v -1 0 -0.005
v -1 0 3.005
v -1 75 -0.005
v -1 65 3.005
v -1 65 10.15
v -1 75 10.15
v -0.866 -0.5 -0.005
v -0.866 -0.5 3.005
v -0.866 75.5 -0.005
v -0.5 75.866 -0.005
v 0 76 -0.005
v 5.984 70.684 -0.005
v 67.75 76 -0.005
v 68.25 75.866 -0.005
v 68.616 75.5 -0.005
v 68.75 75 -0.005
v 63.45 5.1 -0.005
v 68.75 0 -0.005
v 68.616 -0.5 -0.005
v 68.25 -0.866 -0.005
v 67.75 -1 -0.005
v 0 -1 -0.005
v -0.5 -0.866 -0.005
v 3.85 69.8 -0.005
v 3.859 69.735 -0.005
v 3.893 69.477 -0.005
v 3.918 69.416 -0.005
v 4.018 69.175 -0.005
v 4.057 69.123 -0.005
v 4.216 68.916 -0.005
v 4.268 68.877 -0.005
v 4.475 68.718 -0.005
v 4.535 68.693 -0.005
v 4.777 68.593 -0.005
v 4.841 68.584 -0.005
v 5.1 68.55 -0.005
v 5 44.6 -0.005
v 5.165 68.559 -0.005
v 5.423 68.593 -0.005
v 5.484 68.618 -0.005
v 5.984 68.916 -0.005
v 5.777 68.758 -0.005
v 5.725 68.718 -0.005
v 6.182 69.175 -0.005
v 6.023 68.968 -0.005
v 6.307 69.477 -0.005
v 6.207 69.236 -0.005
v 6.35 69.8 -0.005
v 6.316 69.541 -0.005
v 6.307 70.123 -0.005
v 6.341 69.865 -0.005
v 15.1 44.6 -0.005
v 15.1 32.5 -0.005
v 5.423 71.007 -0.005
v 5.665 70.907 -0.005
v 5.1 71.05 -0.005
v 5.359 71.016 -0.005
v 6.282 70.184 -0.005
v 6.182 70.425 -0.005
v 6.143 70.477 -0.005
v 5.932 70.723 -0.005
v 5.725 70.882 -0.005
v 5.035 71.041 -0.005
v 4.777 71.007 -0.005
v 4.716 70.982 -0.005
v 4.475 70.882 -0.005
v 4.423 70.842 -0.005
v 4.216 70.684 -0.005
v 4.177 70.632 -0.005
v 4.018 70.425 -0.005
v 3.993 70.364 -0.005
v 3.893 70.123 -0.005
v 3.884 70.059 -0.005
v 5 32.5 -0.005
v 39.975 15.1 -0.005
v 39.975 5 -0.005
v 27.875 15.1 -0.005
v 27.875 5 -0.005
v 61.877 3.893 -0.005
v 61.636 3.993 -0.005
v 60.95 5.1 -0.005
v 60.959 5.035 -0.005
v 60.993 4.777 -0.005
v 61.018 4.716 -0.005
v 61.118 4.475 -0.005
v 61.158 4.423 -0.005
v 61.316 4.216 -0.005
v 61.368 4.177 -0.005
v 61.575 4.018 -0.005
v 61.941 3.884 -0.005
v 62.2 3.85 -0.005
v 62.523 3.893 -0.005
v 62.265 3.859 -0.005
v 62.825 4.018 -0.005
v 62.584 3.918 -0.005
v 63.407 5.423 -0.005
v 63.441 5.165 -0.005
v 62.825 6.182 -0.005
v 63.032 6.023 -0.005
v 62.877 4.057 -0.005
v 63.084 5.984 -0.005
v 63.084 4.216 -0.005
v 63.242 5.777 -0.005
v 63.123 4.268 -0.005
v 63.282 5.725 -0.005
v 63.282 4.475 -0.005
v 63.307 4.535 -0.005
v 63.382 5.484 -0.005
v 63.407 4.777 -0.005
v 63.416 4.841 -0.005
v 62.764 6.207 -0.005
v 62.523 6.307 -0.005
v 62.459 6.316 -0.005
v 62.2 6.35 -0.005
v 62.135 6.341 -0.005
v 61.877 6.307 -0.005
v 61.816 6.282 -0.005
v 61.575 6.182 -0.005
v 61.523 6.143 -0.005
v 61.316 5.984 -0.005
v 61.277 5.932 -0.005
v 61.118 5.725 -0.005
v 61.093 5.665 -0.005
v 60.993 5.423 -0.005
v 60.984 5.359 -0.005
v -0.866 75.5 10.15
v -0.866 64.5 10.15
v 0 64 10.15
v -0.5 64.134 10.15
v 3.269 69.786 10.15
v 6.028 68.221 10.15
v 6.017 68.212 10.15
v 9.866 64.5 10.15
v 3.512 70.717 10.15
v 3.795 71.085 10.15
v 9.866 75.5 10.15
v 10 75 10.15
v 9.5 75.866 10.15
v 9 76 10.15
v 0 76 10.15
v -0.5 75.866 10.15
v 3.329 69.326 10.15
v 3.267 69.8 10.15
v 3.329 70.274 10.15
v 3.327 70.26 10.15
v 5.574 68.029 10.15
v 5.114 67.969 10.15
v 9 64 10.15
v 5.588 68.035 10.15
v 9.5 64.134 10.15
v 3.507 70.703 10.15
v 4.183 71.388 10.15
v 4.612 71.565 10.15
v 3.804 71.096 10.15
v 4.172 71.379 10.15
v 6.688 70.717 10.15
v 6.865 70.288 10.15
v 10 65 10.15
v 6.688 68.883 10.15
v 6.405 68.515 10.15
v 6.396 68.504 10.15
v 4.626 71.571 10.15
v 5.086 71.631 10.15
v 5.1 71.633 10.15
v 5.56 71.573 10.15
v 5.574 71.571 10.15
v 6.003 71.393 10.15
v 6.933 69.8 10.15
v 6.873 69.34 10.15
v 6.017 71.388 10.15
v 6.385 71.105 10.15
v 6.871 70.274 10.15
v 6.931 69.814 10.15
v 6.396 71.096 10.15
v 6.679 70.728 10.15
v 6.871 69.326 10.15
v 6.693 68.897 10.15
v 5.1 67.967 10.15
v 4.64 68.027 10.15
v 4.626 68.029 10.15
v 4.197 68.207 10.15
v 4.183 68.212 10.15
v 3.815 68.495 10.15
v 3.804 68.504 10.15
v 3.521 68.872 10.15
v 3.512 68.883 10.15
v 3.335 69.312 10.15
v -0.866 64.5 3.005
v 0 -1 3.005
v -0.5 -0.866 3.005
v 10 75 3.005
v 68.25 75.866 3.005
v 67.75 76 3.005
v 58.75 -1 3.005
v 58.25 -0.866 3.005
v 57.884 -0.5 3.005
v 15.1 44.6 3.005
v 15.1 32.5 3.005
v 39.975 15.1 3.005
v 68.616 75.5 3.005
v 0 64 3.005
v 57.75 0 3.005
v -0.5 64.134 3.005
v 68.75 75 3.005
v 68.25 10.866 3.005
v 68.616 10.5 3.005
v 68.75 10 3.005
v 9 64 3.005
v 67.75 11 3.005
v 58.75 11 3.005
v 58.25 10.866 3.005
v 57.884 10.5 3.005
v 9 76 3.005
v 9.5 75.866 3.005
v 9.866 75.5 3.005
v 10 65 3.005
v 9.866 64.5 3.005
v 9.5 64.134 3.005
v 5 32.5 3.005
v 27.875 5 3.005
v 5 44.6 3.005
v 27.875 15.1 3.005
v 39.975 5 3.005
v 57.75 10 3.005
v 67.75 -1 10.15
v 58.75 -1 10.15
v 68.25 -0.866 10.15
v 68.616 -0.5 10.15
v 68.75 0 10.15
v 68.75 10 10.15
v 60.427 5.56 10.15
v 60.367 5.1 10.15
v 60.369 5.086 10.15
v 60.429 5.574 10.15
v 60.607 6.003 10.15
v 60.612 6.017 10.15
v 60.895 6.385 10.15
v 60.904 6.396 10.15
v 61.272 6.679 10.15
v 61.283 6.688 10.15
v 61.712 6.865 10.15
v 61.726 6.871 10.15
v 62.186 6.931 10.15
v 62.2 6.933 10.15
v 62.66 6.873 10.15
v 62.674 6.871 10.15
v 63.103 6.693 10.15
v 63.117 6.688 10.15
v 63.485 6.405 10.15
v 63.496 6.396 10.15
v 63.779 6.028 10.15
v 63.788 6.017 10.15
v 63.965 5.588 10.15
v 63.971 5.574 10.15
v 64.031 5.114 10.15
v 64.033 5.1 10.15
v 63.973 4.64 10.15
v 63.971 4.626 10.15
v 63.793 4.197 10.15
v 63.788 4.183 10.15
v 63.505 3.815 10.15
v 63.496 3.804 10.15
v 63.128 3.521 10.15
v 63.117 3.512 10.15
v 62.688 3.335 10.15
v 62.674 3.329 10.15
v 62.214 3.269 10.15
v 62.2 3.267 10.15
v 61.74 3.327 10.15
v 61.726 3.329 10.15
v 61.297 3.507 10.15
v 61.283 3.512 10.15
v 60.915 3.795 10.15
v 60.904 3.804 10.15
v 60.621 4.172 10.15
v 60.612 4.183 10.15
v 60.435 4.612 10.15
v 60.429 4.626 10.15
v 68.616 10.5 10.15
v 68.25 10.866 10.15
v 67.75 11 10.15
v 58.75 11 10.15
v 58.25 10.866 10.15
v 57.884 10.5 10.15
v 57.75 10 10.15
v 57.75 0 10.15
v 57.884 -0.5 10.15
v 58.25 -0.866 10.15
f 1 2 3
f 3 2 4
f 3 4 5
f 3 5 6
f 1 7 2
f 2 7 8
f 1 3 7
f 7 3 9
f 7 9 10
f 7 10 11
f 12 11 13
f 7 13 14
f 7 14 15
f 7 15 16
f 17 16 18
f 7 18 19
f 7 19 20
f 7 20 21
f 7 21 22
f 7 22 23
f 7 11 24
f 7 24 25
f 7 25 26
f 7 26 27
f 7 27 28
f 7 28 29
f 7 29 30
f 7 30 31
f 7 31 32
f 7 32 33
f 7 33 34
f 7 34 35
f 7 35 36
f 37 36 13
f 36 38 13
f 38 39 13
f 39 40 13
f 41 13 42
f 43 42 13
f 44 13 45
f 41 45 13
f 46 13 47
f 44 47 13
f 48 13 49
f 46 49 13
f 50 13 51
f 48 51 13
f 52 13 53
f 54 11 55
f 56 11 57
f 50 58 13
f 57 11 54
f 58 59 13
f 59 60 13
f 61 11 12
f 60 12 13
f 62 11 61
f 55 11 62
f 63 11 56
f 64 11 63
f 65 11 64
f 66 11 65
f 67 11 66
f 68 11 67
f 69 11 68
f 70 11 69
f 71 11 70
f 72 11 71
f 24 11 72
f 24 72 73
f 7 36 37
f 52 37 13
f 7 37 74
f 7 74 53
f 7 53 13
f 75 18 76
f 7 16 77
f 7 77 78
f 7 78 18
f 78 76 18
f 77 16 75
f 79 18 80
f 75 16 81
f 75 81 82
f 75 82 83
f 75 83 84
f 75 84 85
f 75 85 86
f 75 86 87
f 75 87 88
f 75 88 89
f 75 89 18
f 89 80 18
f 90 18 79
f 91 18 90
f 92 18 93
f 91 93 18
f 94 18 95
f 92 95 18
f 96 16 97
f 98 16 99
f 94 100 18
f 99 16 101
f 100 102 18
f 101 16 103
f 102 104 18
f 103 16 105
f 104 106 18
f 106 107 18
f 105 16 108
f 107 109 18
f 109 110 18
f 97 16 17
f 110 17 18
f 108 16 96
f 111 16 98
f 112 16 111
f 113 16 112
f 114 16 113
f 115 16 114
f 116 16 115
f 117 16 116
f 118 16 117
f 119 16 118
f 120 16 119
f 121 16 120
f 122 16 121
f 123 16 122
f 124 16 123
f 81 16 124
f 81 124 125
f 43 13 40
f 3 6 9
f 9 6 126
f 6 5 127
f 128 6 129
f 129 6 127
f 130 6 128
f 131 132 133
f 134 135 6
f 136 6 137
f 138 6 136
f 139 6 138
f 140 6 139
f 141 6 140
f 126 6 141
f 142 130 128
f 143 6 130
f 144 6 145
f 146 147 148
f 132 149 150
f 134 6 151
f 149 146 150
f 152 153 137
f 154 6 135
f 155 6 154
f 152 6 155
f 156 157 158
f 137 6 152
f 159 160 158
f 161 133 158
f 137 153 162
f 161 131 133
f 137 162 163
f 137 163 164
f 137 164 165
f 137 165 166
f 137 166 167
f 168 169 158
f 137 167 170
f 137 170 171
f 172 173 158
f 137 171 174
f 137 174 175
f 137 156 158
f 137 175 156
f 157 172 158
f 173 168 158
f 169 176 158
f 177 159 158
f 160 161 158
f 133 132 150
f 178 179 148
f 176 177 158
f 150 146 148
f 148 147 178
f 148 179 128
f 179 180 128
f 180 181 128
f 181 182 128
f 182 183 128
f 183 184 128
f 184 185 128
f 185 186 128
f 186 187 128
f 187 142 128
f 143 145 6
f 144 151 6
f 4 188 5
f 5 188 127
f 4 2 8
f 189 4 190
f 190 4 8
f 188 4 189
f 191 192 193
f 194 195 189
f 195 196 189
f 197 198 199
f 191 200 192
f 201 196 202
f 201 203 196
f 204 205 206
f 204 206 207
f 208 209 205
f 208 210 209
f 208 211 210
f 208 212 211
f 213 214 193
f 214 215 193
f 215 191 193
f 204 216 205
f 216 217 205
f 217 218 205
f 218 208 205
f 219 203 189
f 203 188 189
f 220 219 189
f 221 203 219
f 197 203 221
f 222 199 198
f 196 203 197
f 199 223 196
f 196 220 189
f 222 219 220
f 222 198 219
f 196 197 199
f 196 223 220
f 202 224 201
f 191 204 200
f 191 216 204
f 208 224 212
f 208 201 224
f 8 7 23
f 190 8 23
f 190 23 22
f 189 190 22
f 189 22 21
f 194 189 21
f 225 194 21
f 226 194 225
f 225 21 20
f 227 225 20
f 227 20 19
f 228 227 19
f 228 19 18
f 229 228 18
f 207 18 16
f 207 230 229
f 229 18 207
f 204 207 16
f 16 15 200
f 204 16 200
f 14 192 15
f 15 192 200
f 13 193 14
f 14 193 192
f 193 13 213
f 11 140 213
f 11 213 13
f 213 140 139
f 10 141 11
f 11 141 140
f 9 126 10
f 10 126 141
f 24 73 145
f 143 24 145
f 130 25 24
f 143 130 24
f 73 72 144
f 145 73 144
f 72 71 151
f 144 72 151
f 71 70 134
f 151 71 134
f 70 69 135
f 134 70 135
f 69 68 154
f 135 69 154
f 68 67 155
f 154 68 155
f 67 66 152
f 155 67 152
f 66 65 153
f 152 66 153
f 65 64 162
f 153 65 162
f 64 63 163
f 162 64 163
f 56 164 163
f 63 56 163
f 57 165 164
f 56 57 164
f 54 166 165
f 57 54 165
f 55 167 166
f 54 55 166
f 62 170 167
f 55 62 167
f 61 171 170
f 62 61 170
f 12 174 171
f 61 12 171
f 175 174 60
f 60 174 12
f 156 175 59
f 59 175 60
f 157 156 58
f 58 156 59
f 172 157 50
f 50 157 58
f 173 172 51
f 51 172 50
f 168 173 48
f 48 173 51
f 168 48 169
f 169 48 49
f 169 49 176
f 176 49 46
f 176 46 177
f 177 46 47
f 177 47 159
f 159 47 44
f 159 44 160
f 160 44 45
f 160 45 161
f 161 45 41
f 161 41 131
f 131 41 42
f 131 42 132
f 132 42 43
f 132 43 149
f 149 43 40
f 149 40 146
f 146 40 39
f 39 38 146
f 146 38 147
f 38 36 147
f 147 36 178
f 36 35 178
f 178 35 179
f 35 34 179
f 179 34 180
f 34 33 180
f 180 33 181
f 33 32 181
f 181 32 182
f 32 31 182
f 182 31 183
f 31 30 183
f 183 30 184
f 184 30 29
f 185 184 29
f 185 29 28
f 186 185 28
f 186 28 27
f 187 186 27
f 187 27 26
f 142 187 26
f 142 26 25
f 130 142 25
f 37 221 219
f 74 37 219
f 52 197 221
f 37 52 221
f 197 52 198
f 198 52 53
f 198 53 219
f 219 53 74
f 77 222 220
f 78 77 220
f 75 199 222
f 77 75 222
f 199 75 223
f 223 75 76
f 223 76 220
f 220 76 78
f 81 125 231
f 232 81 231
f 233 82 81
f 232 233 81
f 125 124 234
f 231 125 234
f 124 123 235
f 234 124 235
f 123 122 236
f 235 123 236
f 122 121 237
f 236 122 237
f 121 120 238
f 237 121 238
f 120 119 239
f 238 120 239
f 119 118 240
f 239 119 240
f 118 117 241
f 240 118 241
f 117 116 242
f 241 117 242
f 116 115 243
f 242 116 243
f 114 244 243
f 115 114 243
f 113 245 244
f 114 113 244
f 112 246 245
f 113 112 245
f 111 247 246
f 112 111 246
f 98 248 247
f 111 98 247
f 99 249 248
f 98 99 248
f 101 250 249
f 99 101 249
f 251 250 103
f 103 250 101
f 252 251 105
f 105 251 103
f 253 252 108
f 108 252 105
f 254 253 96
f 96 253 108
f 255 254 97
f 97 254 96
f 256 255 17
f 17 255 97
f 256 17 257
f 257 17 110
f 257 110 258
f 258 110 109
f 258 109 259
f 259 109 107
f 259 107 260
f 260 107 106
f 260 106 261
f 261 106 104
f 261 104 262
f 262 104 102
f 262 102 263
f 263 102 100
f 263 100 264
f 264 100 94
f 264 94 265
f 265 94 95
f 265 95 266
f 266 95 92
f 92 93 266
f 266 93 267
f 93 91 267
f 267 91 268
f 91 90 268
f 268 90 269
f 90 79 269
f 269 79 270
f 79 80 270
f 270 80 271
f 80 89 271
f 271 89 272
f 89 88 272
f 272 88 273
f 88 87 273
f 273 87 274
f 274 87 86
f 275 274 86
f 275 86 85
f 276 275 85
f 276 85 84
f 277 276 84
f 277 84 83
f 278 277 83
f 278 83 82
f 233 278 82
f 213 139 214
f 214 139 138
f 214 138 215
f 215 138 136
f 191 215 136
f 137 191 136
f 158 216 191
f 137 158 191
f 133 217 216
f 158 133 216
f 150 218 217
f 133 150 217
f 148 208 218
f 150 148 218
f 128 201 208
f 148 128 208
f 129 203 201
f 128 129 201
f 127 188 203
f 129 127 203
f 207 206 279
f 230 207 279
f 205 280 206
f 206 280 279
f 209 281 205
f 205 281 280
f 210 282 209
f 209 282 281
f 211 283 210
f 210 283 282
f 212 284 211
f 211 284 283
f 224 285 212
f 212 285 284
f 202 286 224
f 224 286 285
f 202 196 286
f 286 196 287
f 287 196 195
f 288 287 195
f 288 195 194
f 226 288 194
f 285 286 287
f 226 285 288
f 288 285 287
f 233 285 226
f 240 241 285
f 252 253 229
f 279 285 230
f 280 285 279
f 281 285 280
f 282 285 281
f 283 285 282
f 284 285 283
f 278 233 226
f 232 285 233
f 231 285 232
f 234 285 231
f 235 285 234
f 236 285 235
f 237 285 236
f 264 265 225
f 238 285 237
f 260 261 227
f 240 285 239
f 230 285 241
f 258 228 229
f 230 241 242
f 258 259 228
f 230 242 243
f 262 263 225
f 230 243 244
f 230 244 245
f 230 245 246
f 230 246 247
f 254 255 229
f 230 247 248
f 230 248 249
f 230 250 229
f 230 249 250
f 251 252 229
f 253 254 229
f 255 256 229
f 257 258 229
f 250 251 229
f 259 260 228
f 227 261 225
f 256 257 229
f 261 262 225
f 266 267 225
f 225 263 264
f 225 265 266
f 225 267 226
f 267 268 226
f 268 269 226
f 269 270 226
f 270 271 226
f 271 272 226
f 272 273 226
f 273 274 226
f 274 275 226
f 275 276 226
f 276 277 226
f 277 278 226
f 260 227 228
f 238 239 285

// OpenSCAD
// file: tools/MCAD/metric_fasteners_tab.scad
//
// Symbols
//
M1x0_25 = 0;
M1 = M1x0_25;
M1_2x0_25 = 1;
M1_2 = M1_2x0_25;
M1_4x0_3 = 2;
M1_4 = M1_4x0_3;
M1_6x0_35 = 3;
M1_6 = M1_6x0_35;
M2x0_4 = 4;
M2 = M2x0_4;
M2_5x0_45 = 5;
M2_5 = M2_5x0_45;
M3x0_5 = 6;
M3 = M3x0_5;
M3_5x0_6 = 7;
M3_5 = M3_5x0_6;
M4x0_7 = 8;
M4 = M4x0_7;
M5x0_8 = 9;
M5 = M5x0_8;
M6x1 = 10;
M6 = M6x1;
M7x1 = 11;
M7 = M7x1;
M8x1 = 12;
M8x1_25 = 13;
M8 = M8x1_25;
M10x1 = 14;
M10x1_25 = 15;
M10x1_5 = 16;
M10 = M10x1_5;
M12x1_25 = 17;
M12x1_5 = 18;
M12x1_75 = 19;
M12 = M12x1_75;
M14x1_5 = 20;
M14x2 = 21;
M14 = M14x2;
M16x1_5 = 22;
M16x2 = 23;
M16 = M16x2;
M18x1_5 = 24;
M18x2 = 25;
M18x2_5 = 26;
M18 = M18x2_5;
M20x1_5 = 27;
M20x2 = 28;
M20x2_5 = 29;
M20 = M20x2_5;
M22x1_5 = 30;
M22x2 = 31;
M22x2_5 = 32;
M22 = M22x2_5;
M24x2 = 33;
M24x3 = 34;
M24 = M24x3;
M27x2 = 35;
M27x3 = 36;
M27 = M27x3;
M30x2 = 37;
M30x3_5 = 38;
M30 = M30x3_5;
M33x2 = 39;
M33x3_5 = 40;
M33 = M33x3_5;
M36x3 = 41;
M36x4 = 42;
M36 = M36x4;
M39x3 = 43;
M39x4 = 44;
M39 = M39x4;
M42x3 = 45;
M42x4_5 = 46;
M42 = M42x4_5;
M45x3 = 47;
M45x4_5 = 48;
M45 = M45x4_5;
M48x3 = 49;
M48x5 = 50;
M48 = M48x5;
M52x4 = 51;
M52x5 = 52;
M52 = M52x5;
M56x4 = 53;
M56x5_5 = 54;
M56 = M56x5_5;
M60x4 = 55;
M60x5_5 = 56;
M60 = M60x5_5;
M64x4 = 57;
M64x6 = 58;
M64 = M64x6;

//
// Threads
//
METRIC_THREADS = [
	/* d, p */
	[1, 0.25],
	[1.2, 0.25],
	[1.4, 0.3],
	[1.6, 0.35],
	[2, 0.4],
	[2.5, 0.45],
	[3, 0.5],
	[3.5, 0.6],
	[4, 0.7],
	[5, 0.8],
	[6, 1],
	[7, 1],
	[8, 1],
	[8, 1.25],
	[10, 1],
	[10, 1.25],
	[10, 1.5],
	[12, 1.25],
	[12, 1.5],
	[12, 1.75],
	[14, 1.5],
	[14, 2],
	[16, 1.5],
	[16, 2],
	[18, 1.5],
	[18, 2],
	[18, 2.5],
	[20, 1.5],
	[20, 2],
	[20, 2.5],
	[22, 1.5],
	[22, 2],
	[22, 2.5],
	[24, 2],
	[24, 3],
	[27, 2],
	[27, 3],
	[30, 2],
	[30, 3.5],
	[33, 2],
	[33, 3.5],
	[36, 3],
	[36, 4],
	[39, 3],
	[39, 4],
	[42, 3],
	[42, 4.5],
	[45, 3],
	[45, 4.5],
	[48, 3],
	[48, 5],
	[52, 4],
	[52, 5],
	[56, 4],
	[56, 5.5],
	[60, 4],
	[60, 5.5],
	[64, 4],
	[64, 6],
];

//
// Hexagonal heads and nuts
//
METRIC_HEXAGONAL_HEADS_AND_NUTS = [
	/* d, m, s */
	[1, 0.8, 2.5],
	[1.2, 1.0, 3.0],
	[1.4, 1.2, 3.0],
	[1.6, 1.3, 3.2],
	[2, 1.6, 4.0],
	[2.5, 2.0, 5.0],
	[3, 2.4, 5.5],
	[3.5, 2.8, 6.0],
	[4, 3.2, 7.0],
	[5, 4.7, 8.0],
	[6, 5.2, 10.0],
	[7, 5.5, 11.0],
	[8, 6.8, 13.0],
	[8, 6.8, 13.0],
	[10, 8.4, 16.0],
	[10, 8.4, 16.0],
	[10, 8.4, 16.0],
	[12, 10.8, 18.0],
	[12, 10.8, 18.0],
	[12, 10.8, 18.0],
	[14, 12.8, 21.0],
	[14, 12.8, 21.0],
	[16, 14.8, 24.0],
	[16, 14.8, 24.0],
	[18, 15.8, 27.0],
	[18, 15.8, 27.0],
	[18, 15.8, 27.0],
	[20, 18.0, 30.0],
	[20, 18.0, 30.0],
	[20, 18.0, 30.0],
	[22, 19.4, 34.0],
	[22, 19.4, 34.0],
	[22, 19.4, 34.0],
	[24, 21.5, 36.0],
	[24, 21.5, 36.0],
	[27, 23.8, 41.0],
	[27, 23.8, 41.0],
	[30, 25.6, 46.0],
	[30, 25.6, 46.0],
	[33, 28.7, 50.0],
	[33, 28.7, 50.0],
	[36, 31.0, 55.0],
	[36, 31.0, 55.0],
	[39, 33.4, 60.0],
	[39, 33.4, 60.0],
	[42, 34.0, 65.0],
	[42, 34.0, 65.0],
	[45, 36.0, 70.0],
	[45, 36.0, 70.0],
	[48, 38.0, 75.0],
	[48, 38.0, 75.0],
	[52, 42.0, 80.0],
	[52, 42.0, 80.0],
	[56, 45.0, 85.0],
	[56, 45.0, 85.0],
	[60, 48.0, 90.0],
	[60, 48.0, 90.0],
	[64, 51.0, 95.0],
	[64, 51.0, 95.0],
];

//
// Washers
//
METRIC_WASHERS = [
	/* wd1, wd2, wh */
	[1.1, 3, 0.3],
	[1.3, 3.5, 0.3],
	[1.5, 4, 0.3],
	[1.7, 4, 0.3],
	[2.2, 5, 0.3],
	[2.7, 6, 0.5],
	[3.2, 7, 0.5],
	[3.7, 8, 0.5],
	[4.3, 9, 0.8],
	[5.3, 10, 1],
	[6.4, 12, 1.6],
	[7.4, 14, 1.6],
	[8.4, 16, 1.6],
	[8.4, 16, 1.6],
	[10.5, 20, 2],
	[10.5, 20, 2],
	[10.5, 20, 2],
	[13, 24, 2.5],
	[13, 24, 2.5],
	[13, 24, 2.5],
	[15, 28, 2.5],
	[15, 28, 2.5],
	[17, 30, 3],
	[17, 30, 3],
	[19, 34, 3],
	[19, 34, 3],
	[19, 34, 3],
	[21, 37, 3],
	[21, 37, 3],
	[21, 37, 3],
	[23, 39, 3],
	[23, 39, 3],
	[23, 39, 3],
	[25, 44, 4],
	[25, 44, 4],
	[28, 50, 4],
	[28, 50, 4],
	[31, 56, 4],
	[31, 56, 4],
	[34, 60, 5],
	[34, 60, 5],
	[37, 66, 5],
	[37, 66, 5],
	[42, 72, 6],
	[42, 72, 6],
	[45, 78, 8],
	[45, 78, 8],
	[48, 85, 8],
	[48, 85, 8],
	[52, 92, 8],
	[52, 92, 8],
	[56, 98, 8],
	[56, 98, 8],
	[62, 105, 10],
	[62, 105, 10],
	[66, 110, 10],
	[66, 110, 10],
	[70, 115, 10],
	[70, 115, 10],
];
// file: tools/MCAD/metric_fasteners.scad
// -*- mode: scad; c-basic-offset: 4; c-file-style: "k&r"; indent-tabs-mode: nil -*-

/** \file fasteners.scad Metric fasteners: bolts, nuts, washers etc.
 */

include <metric_fasteners_tab.scad>

/**
 * The thickness of a hex nut.
 *
 * @param size  Index in the tables. Use M* variables.
 */
function hex_nut_thickness(size) = METRIC_HEXAGONAL_HEADS_AND_NUTS[size][1];

/**
 * Basic metric bolt with hexagonal head.
 *
 * @param size Index in the tables. Use M* variables.
 *
 * @param length Length of the thread.
 */

module hex_bolt(size, length)
{
    d = METRIC_THREADS[size][0];
    m = METRIC_HEXAGONAL_HEADS_AND_NUTS[size][1];
    s = METRIC_HEXAGONAL_HEADS_AND_NUTS[size][2];
    a = 0.1 * m;
    b = s / 1.73205;
    bolt_length = (length == undef) ? m : length;
    render()
        union()
    {
        translate([0, 0, -a])
            cylinder(r = d/2, h=bolt_length + a, $fn=24);
        translate([0, 0, -m])
            cylinder(r = b, h = m, $fn = 6);
    }
}

/**
 * Basic metric hexagonal nut *without* a threaded hole in it.
 *
 * @param size Index in the tables. Use M* variables
 */

module hex_nut (size)
{
    d = METRIC_THREADS[size][0];
    m = METRIC_HEXAGONAL_HEADS_AND_NUTS[size][1];
    s = METRIC_HEXAGONAL_HEADS_AND_NUTS[size][2];
    a = 0.1 * m;
    b = s / 1.73205;

    render ()
        cylinder (r = b, h = m, $fn = 6);
}

/**
 * Basic metric hexagonal nut *with* a hole in it. Avoid using this
 * module to carve holes for nuts and bolts because you may not get a
 * manifold mesh.
 *
 * @param size Index in the tables. Use M* variables
 */

module hex_nut_hole (size)
{
    d = METRIC_THREADS[size][0];
    m = METRIC_HEXAGONAL_HEADS_AND_NUTS[size][1];
    s = METRIC_HEXAGONAL_HEADS_AND_NUTS[size][2];
    a = 0.1 * m;
    b = s / 1.73205;

    render ()
        difference ()
    {
        cylinder (r = b, h = m, $fn = 6);
        translate ([0, 0, -0.05])
            cylinder (d = d, h = m + 0.1, $fn = 26);
    }
}
// main file
use <tools/MCAD/metric_fasteners.scad>

width = 67.75;	// actual is 1.550"
height = 75;	// actual is 1"
depth = 3;
wall_thickness = 5;
pcb_z_offset = 7;
slot_dist_from_edge = 5;

term_mnt_5mm_2hole(width, height, depth, wall_thickness);

module term_mnt_5mm_2hole(w, h, d, wt) {
difference() {
  union() {
	// pcb mount pads
    minkowski() {
      union() {
    translate([w - 9, 0, d]) cube([9, 10, pcb_z_offset + 0.1]);
    translate([0, h - 10, d]) cube([9, 10, pcb_z_offset + 0.1]);
    }
    translate([0, 0, 0]) cylinder(r = 1, h = 0.1, center = true, $fn = 12);
  }
	// base support
    minkowski() { 
      union() {
        translate([0, 0, 0]) cube([w, h, d]);
    }
    translate([0, 0, 0]) cylinder(r = 1, h = 0.01, center = true, $fn = 12);
  }
}
    // extrusion clip mount hole
    translate([w / 2 - 12 / 2, slot_dist_from_edge, -0.01]) cube([12.1, 10.1, d + 3]);
    // extrusion clip mount hole 2
    translate([slot_dist_from_edge, h / 2 - 10 / 2, -0.01]) cube([10.1, 12.1, d + 3]);
    // pcb mount hls
    translate([5.1, 69.8, 0]) cylinder(r1 = 0.5, r2 = 2, h = d * 4 + pcb_z_offset * 2 + 0.1, center = true, $fn = 24);
    translate([62.2, 5.1, 0]) cylinder(r1 = 0.5, r2 = 2, h = d * 4+ pcb_z_offset * 2 + 0.1, center = true, $fn = 24);
}
}
